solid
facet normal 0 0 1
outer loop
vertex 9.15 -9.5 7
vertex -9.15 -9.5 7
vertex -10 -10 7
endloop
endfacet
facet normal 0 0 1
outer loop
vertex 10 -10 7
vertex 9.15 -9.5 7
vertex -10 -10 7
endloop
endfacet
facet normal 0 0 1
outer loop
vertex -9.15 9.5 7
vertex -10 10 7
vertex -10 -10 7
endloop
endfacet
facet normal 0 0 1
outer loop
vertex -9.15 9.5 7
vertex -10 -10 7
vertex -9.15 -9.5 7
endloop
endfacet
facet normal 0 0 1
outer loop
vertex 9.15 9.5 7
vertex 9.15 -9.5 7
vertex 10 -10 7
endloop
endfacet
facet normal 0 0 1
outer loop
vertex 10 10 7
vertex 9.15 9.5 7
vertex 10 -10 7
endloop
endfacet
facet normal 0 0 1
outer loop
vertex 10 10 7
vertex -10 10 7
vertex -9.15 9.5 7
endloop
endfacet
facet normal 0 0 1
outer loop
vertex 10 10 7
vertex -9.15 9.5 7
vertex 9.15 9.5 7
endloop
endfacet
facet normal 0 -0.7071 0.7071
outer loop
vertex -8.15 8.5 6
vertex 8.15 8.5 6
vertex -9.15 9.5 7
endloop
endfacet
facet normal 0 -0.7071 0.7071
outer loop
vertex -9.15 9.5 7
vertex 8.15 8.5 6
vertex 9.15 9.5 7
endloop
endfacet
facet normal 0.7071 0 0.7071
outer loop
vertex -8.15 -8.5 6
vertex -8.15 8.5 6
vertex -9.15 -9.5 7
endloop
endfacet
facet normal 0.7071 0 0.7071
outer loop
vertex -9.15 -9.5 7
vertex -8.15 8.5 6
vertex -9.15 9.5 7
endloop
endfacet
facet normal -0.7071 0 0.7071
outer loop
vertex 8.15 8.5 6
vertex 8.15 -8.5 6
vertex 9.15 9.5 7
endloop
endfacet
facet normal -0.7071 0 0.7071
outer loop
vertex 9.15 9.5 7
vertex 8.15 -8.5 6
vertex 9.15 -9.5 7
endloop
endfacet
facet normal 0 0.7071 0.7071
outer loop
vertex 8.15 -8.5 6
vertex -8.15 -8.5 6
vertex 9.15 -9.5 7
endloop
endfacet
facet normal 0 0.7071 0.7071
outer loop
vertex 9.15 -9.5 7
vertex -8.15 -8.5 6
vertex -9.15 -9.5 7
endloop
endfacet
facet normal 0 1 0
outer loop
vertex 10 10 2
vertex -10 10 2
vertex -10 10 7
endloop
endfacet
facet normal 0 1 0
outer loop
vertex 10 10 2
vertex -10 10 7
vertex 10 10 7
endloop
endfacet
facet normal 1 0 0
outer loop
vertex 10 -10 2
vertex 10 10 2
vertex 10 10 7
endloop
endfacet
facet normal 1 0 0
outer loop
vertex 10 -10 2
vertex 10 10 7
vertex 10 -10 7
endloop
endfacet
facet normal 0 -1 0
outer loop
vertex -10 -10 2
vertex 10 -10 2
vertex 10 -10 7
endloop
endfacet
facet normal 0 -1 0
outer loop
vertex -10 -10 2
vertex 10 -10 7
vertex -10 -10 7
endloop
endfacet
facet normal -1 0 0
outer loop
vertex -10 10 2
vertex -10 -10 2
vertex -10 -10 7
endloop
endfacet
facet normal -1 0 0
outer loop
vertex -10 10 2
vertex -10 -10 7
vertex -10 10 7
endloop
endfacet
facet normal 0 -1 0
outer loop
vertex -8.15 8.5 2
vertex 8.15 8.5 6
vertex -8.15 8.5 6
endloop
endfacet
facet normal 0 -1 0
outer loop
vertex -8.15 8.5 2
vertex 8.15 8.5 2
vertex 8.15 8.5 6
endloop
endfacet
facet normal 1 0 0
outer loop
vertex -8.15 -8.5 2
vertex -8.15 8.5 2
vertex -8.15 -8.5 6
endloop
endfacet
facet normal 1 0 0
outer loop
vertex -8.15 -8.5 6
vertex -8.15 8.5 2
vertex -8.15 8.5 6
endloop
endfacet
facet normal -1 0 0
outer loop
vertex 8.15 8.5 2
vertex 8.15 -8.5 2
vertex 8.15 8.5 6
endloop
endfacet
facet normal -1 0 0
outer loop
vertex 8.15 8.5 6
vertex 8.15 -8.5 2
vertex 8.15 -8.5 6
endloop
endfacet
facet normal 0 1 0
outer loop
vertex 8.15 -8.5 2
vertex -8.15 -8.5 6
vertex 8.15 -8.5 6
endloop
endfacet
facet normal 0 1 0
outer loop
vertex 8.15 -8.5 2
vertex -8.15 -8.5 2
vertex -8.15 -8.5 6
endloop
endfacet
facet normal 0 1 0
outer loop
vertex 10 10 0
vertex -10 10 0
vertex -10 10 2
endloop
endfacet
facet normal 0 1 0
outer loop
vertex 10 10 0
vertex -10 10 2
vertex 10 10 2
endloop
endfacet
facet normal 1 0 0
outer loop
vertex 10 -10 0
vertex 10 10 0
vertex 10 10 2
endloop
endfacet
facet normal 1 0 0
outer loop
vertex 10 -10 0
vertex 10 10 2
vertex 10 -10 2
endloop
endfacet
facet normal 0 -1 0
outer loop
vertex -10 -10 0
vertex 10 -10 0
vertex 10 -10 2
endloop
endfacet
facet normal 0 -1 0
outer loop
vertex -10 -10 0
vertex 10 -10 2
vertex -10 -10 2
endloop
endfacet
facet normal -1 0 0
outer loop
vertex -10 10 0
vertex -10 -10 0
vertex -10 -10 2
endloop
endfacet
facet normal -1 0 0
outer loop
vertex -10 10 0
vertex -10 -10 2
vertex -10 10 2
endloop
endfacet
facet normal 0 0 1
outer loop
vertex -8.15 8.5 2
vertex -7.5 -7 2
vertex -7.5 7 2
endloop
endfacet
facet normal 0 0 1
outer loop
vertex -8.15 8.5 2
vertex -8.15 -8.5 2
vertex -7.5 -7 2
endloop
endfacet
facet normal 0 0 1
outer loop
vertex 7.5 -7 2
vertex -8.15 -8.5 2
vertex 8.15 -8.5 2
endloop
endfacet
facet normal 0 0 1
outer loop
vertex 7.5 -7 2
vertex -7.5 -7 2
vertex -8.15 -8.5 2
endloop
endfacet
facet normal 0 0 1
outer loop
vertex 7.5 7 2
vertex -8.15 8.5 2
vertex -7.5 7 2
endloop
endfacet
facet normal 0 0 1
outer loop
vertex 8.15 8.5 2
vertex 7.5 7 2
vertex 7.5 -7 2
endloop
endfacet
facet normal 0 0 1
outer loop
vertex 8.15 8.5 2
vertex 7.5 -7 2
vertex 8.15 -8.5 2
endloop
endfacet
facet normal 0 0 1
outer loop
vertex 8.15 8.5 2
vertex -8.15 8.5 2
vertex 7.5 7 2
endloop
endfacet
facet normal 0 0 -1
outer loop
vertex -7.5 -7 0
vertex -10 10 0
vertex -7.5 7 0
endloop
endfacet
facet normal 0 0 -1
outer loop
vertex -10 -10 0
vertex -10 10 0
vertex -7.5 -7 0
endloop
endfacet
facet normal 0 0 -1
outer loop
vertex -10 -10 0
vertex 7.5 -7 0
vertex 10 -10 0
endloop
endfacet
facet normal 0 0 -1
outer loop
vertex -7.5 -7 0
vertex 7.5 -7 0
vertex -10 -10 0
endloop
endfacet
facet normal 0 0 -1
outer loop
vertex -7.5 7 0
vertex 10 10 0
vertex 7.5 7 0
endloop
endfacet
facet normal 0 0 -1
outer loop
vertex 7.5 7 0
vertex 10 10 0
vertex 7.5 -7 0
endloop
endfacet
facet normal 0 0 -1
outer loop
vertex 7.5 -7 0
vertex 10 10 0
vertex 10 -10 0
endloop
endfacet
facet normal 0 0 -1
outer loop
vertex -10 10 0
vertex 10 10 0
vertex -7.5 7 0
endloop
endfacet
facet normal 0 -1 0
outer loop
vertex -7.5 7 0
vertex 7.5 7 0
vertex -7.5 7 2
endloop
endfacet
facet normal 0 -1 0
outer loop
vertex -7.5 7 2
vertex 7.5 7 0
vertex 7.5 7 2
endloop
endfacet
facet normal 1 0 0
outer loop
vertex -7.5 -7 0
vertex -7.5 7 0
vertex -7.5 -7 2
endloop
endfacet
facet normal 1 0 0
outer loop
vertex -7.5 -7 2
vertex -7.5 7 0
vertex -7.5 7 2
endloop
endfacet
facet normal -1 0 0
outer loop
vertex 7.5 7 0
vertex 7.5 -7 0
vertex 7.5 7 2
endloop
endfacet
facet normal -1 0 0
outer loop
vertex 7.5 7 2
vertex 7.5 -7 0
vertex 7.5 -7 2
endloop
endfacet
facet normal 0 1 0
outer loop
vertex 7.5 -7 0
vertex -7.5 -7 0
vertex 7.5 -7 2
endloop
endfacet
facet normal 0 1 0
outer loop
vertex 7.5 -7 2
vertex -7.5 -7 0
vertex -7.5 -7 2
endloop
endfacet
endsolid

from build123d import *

# Parameters (mm, degrees)
SKETCH_W      = 20
SKETCH_H      = 20
SKETCH_W_2    = 15
SKETCH_H_2    = 14
PAD_DEPTH     = 2
SKETCH001_W   = 20
SKETCH001_H   = 20
SKETCH001_W_2 = 16.3
SKETCH001_H_2 = 17
PAD001_DEPTH  = 5
CHAMFER_SIZE  = 1


with BuildPart() as part:
    # Sketch → Pad (new body)
    with BuildSketch(Plane.XY):
        Rectangle(SKETCH_W, SKETCH_H)
        Rectangle(SKETCH_W_2, SKETCH_H_2, mode=Mode.SUBTRACT)
    extrude(amount=PAD_DEPTH)

    # Sketch001 (on Face10 of Pad) → Pad001 (join)
    with BuildSketch(Plane.XY.offset(2)):
        Rectangle(SKETCH001_W, SKETCH001_H)
        Rectangle(SKETCH001_W_2, SKETCH001_H_2, mode=Mode.SUBTRACT)
    extrude(amount=PAD001_DEPTH)

    # Chamfer
    chamfer_edges = [part.edges().sort_by_distance(p)[0] for p in [
        (0, 8.5, 7),
        (-8.15, 0, 7),
        (0, -8.5, 7),
        (8.15, 0, 7),
    ]]
    chamfer(chamfer_edges, length=CHAMFER_SIZE)


solid = part.part
